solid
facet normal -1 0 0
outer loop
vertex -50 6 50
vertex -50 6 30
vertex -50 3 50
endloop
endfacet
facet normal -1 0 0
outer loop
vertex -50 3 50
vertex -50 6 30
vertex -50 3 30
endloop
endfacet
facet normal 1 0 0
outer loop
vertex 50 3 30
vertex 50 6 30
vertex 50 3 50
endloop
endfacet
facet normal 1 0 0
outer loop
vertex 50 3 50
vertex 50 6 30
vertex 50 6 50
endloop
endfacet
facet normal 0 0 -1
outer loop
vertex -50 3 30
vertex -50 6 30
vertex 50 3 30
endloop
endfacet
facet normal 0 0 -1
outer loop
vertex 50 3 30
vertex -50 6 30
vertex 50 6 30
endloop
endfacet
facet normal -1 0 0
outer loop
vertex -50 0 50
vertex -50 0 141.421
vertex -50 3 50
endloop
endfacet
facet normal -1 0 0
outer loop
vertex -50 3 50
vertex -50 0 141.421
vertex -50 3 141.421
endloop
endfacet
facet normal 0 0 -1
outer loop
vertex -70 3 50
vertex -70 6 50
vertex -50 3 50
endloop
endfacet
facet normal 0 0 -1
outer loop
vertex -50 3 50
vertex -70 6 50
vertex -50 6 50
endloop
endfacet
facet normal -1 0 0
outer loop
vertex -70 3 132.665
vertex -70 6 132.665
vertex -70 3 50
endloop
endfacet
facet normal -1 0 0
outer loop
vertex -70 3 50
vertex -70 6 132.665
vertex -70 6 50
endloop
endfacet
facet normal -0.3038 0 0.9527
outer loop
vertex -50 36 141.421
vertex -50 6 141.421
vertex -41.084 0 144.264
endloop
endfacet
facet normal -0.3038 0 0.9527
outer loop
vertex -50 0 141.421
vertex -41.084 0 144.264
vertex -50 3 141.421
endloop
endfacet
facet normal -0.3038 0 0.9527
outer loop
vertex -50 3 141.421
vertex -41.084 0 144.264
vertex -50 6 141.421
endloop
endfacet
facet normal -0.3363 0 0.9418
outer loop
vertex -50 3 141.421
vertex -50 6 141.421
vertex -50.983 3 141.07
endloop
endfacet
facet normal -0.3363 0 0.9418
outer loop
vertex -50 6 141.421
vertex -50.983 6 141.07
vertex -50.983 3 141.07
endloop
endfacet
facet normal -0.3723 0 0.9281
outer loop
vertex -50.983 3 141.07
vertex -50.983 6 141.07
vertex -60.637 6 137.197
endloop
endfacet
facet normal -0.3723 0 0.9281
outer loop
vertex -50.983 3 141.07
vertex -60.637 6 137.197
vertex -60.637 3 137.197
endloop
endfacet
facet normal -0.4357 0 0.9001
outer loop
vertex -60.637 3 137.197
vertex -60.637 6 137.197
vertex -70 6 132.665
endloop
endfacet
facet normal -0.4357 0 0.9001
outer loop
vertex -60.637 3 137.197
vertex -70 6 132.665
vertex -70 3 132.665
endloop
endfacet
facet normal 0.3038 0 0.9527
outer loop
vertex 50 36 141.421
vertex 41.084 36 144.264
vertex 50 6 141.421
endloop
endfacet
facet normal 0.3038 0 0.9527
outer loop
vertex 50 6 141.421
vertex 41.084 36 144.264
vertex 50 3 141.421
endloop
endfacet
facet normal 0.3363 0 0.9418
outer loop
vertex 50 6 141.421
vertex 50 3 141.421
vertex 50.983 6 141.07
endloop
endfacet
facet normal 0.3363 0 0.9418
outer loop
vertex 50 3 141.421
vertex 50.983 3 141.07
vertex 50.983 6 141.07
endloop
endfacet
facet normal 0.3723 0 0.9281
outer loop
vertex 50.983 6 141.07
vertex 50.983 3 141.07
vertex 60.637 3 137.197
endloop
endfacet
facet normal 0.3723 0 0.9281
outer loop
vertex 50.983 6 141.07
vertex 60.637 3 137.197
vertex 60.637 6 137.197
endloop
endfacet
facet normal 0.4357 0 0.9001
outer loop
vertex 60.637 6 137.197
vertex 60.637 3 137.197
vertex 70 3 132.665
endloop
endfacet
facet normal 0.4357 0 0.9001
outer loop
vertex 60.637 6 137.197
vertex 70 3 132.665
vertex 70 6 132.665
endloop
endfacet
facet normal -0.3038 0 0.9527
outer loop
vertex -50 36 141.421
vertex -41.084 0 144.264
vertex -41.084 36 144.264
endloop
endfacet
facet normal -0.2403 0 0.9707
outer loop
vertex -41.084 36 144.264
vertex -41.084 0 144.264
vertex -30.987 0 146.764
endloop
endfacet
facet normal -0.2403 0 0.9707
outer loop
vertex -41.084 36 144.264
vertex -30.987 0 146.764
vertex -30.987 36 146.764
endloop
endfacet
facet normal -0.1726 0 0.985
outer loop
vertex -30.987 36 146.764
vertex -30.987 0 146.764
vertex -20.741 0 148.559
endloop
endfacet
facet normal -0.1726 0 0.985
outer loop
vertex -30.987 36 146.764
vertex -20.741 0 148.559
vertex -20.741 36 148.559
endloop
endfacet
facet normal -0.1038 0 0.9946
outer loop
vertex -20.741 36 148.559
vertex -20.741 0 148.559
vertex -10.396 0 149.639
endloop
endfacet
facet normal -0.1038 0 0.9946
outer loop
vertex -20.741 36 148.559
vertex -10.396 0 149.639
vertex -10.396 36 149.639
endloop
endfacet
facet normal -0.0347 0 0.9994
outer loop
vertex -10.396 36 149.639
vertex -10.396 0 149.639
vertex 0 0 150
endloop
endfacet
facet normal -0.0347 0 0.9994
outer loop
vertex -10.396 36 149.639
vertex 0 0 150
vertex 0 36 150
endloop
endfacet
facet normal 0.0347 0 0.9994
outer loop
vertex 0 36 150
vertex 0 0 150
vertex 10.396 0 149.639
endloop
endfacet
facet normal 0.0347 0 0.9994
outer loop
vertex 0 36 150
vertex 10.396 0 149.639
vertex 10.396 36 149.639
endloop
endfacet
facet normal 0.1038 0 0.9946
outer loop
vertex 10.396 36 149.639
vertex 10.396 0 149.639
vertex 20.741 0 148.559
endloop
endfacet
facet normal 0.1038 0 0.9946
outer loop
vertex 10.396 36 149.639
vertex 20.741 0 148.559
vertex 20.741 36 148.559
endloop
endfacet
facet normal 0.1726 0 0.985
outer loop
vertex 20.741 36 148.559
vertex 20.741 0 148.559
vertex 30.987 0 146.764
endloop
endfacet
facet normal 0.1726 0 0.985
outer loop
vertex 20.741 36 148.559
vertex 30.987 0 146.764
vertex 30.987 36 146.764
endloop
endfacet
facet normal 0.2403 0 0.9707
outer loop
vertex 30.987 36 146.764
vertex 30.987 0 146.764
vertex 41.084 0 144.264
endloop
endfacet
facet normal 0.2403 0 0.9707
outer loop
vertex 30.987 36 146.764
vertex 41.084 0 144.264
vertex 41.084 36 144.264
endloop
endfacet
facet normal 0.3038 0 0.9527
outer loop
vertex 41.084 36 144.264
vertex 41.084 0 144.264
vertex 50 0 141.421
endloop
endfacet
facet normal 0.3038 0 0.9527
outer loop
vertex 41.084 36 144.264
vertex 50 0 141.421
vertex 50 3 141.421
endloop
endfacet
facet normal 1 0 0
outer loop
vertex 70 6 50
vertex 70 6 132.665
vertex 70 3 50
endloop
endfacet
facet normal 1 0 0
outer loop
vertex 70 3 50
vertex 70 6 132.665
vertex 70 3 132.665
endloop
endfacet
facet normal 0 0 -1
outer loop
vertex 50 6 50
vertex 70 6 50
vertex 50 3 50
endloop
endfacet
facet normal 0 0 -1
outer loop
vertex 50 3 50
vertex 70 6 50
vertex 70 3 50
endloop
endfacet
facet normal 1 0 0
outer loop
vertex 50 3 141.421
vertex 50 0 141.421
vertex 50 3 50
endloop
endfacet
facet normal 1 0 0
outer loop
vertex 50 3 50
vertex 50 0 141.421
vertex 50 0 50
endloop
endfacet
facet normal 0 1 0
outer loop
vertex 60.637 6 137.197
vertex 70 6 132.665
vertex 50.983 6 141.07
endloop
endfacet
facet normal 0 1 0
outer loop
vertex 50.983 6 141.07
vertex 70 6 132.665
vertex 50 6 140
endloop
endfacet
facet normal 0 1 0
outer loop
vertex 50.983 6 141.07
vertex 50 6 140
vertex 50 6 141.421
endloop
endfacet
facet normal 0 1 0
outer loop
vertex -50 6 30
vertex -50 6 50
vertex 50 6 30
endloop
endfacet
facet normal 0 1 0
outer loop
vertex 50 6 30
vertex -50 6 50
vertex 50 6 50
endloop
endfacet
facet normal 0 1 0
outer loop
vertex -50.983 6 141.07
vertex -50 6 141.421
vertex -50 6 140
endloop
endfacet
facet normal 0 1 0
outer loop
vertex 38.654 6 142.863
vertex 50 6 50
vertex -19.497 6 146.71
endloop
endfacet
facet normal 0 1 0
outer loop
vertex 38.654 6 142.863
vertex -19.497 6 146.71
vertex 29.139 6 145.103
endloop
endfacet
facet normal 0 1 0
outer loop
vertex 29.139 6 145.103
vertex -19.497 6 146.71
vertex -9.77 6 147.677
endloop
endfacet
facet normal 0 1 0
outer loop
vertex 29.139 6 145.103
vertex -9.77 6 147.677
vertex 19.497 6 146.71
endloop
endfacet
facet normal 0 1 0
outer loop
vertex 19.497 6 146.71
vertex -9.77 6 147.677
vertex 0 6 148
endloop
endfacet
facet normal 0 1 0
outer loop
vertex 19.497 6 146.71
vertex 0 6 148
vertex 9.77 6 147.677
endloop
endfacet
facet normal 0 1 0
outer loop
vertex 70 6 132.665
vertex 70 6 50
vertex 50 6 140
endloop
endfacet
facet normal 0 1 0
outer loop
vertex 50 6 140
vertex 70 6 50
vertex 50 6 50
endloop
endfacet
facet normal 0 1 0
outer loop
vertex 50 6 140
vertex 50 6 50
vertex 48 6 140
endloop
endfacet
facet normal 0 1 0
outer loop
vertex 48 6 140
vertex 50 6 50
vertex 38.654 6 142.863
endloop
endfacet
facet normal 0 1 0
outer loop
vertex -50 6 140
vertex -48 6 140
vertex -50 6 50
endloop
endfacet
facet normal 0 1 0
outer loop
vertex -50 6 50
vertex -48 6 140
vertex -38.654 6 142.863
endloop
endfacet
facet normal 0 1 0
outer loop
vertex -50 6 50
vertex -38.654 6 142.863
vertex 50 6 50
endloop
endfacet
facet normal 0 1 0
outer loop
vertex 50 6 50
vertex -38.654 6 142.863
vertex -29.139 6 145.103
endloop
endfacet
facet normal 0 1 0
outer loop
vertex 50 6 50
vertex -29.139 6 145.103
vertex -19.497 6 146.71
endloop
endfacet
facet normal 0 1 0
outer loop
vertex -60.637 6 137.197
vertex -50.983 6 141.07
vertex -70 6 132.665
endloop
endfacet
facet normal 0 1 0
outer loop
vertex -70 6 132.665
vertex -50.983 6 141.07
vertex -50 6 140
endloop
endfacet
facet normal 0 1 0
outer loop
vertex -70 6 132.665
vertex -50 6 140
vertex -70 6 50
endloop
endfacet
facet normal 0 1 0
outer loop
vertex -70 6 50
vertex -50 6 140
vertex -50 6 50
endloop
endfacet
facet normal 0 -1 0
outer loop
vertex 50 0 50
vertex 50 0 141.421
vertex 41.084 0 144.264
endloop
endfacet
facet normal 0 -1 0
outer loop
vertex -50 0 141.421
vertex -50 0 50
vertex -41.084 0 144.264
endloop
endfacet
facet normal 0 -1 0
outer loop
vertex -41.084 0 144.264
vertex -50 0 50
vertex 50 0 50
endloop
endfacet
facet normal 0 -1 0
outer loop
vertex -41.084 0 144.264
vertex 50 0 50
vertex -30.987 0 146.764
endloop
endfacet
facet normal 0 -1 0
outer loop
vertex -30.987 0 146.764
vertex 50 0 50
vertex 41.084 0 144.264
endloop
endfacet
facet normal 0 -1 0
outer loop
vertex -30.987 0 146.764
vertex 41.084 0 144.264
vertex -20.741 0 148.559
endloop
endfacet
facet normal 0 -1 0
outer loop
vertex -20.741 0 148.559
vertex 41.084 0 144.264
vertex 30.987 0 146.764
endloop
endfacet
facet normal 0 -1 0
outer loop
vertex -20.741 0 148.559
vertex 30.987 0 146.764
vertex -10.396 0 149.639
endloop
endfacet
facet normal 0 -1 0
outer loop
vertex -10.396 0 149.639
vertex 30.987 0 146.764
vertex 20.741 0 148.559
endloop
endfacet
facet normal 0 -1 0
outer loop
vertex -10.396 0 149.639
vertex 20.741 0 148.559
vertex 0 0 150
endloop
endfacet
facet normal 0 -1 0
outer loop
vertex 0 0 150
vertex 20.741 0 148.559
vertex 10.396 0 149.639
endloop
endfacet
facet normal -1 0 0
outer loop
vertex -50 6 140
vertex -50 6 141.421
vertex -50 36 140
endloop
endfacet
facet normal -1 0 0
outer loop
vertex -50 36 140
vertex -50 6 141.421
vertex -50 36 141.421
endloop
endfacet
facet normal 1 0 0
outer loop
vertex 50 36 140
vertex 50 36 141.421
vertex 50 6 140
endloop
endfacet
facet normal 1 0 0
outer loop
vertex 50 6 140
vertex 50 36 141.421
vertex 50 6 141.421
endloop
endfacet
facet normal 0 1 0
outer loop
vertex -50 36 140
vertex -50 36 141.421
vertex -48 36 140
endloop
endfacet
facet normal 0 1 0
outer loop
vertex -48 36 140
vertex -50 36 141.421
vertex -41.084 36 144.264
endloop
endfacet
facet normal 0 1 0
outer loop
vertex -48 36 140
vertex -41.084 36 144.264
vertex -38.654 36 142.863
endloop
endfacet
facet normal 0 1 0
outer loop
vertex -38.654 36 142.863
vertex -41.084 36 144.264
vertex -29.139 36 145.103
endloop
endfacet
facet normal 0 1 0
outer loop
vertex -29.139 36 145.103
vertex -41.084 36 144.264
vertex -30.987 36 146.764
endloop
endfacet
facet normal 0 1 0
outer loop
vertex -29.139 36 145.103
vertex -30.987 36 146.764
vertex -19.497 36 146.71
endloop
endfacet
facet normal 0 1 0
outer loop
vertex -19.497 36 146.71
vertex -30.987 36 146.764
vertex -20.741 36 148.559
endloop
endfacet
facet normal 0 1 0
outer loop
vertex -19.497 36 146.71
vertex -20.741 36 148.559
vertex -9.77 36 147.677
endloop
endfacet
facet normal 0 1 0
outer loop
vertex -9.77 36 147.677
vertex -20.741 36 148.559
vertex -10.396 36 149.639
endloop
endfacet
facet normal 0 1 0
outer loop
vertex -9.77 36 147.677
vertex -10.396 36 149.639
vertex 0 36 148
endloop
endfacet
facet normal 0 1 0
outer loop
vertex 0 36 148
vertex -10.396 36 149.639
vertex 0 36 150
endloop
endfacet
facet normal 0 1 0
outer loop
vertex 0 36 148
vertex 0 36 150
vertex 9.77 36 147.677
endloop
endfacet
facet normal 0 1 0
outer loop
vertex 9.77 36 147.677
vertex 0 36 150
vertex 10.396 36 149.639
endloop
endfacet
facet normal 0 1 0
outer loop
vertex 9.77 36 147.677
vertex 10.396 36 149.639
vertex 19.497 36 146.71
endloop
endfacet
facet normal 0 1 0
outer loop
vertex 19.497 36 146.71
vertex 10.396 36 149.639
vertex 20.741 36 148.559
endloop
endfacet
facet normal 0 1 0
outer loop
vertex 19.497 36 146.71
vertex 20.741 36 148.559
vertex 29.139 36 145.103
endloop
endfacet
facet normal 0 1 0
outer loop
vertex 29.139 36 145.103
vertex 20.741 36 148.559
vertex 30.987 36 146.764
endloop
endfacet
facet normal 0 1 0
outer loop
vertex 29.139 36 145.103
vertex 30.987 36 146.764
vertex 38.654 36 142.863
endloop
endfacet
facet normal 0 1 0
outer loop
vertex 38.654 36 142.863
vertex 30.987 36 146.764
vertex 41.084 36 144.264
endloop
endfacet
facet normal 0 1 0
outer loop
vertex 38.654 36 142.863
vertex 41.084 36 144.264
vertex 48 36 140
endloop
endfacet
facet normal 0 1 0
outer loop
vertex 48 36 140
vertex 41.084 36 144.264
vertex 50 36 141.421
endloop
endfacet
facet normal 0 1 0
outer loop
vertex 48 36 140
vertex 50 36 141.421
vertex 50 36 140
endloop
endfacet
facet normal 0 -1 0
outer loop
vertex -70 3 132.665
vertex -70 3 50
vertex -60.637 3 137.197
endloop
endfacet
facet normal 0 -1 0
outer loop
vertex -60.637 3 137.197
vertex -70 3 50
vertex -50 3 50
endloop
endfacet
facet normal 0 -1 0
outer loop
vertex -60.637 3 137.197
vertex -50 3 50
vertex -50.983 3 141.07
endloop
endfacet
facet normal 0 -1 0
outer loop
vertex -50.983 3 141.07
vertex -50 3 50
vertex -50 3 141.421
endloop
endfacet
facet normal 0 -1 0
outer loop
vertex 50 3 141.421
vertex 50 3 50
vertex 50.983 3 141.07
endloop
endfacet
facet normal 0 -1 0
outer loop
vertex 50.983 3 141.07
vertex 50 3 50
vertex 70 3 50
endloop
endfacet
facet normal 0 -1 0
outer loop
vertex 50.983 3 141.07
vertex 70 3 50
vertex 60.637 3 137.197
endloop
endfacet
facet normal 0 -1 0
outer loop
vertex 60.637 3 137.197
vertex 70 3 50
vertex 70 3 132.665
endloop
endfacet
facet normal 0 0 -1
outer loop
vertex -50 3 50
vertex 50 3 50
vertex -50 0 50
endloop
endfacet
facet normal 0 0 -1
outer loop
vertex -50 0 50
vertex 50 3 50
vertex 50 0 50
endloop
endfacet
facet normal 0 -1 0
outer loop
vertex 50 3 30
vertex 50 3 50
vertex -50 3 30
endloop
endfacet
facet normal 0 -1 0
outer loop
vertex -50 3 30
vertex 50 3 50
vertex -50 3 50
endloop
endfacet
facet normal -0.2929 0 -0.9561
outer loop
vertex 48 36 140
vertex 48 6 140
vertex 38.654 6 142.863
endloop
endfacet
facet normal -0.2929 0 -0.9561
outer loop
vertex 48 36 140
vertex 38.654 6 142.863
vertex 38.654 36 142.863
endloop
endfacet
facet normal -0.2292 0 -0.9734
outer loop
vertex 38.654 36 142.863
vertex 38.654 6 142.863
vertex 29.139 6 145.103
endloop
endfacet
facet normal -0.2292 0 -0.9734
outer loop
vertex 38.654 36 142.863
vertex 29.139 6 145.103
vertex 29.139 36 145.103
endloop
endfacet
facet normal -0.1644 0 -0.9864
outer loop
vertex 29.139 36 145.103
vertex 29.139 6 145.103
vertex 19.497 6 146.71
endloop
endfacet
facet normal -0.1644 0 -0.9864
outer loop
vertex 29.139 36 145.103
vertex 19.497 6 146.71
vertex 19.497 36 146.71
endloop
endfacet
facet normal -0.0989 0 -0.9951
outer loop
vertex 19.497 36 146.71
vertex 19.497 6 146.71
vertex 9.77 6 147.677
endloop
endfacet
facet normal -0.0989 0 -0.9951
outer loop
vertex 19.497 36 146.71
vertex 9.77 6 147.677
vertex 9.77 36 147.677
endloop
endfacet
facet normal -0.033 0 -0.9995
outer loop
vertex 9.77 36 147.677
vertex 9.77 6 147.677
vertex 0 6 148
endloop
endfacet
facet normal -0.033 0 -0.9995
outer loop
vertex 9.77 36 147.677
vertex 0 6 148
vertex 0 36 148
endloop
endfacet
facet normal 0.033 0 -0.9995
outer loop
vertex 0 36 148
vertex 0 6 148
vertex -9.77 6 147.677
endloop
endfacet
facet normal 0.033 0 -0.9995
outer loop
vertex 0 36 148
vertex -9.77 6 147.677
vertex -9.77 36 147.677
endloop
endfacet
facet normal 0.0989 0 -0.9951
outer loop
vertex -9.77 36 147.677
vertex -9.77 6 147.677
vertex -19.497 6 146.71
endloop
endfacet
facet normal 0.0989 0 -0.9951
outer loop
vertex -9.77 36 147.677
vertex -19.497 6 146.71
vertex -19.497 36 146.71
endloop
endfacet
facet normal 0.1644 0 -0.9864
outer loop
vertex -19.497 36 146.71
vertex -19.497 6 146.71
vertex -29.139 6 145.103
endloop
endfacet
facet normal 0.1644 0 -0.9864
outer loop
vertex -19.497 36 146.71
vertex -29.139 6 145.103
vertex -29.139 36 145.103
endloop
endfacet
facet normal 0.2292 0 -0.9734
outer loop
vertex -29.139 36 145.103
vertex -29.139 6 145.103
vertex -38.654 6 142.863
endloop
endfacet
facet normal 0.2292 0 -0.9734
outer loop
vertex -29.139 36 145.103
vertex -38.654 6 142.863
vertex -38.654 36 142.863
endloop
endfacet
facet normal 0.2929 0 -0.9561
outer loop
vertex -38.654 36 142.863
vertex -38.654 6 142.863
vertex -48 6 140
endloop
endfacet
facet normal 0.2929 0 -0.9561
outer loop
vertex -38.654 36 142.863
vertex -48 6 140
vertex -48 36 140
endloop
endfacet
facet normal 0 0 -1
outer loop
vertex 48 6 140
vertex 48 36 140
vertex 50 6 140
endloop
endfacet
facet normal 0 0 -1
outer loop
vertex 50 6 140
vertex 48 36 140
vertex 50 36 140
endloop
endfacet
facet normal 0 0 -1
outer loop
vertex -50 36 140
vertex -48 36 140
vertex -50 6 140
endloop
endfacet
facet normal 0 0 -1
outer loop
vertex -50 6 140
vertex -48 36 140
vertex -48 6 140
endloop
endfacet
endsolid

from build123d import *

# Parameters (mm, degrees)
BOSS_EXTRUDE1_DEPTH = 6
BOSS_EXTRUDE2_DEPTH = 30
CUT_EXTRUDE1_DEPTH  = 3
CUT_EXTRUDE2_DEPTH  = 3
SKETCH6_W           = 100
SKETCH6_H           = 20
CUT_EXTRUDE3_DEPTH  = 3
SHELL4_START        = 2
SHELL4_DEPTH        = 34
CUT_EXTRUDE4_REACH  = 197.438
SKETCH7_W           = 90
SKETCH7_H           = 30
BOSS_EXTRUDE3_DEPTH = 6


# Read off the part's stored shape, not the designer's step: Shell4
with BuildPart() as part:
    # Sketch2 → Boss-Extrude1 (new body)
    with BuildSketch(Plane(origin=(0, 0, 0), x_dir=(1, 0, 0), z_dir=(0, 1, 0))):
        with BuildLine():
            Line((50, -50), (0, -50))
            Line((0, -50), (-50, -50))
            Line((-50, -50), (-50, -141.421356237))
            ThreePointArc((-50, -141.421356237), (0, -150), (50, -141.421356237))
            Line((50, -141.421356237), (50, -50))
        make_face()
        with BuildLine():
            Line((-50, -141.421356237), (-50, -50))
            Line((-50, -50), (-70, -50))
            Line((-70, -50), (-70, -132.664991614))
            ThreePointArc((-70, -132.664991614), (-60.159525267, -137.407538074), (-50, -141.421356237))
        make_face()
        with BuildLine():
            Line((70, -50), (50, -50))
            Line((50, -50), (50, -141.421356237))
            ThreePointArc((50, -141.421356237), (60.159525267, -137.407538074), (70, -132.664991614))
            Line((70, -132.664991614), (70, -50))
        make_face()
        Polygon((-50, -50), (0, -50), (50, -50), (50, -30), (-50, -30), align=None)
    extrude(amount=BOSS_EXTRUDE1_DEPTH)

    # Sketch3 → Boss-Extrude2 (add)
    with BuildSketch(Plane(origin=(0, 6, 0), x_dir=(-1, 0, 0), z_dir=(0, 1, 0))):
        with BuildLine():
            Line((50, 50), (-50, 50))
            Line((-50, 50), (-50, 141.421356237))
            ThreePointArc((-50, 141.421356237), (0, 150), (50, 141.421356237))
            Line((50, 141.421356237), (50, 50))
        make_face()
    extrude(amount=BOSS_EXTRUDE2_DEPTH)

    # Sketch4 → Cut-Extrude1 (cut)
    with BuildSketch(Plane.XZ):
        with BuildLine():
            Line((-50, 141.421356237), (-50, 50))
            Line((-50, 50), (-70, 50))
            Line((-70, 50), (-70, 132.664991614))
            ThreePointArc((-70, 132.664991614), (-60.159525267, 137.407538074), (-50, 141.421356237))
        make_face()
    extrude(amount=-CUT_EXTRUDE1_DEPTH, mode=Mode.SUBTRACT)

    # Sketch5 → Cut-Extrude2 (cut)
    with BuildSketch(Plane.XZ):
        with BuildLine():
            Line((50, 141.421356237), (50, 50))
            Line((50, 50), (70, 50))
            Line((70, 50), (70, 132.664991614))
            ThreePointArc((70, 132.664991614), (60.159525267, 137.407538074), (50, 141.421356237))
        make_face()
    extrude(amount=-CUT_EXTRUDE2_DEPTH, mode=Mode.SUBTRACT)

    # Sketch6 → Cut-Extrude3 (cut)
    with BuildSketch(Plane.XZ):
        with Locations((0, 40)):
            Rectangle(SKETCH6_W, SKETCH6_H)
    extrude(amount=-CUT_EXTRUDE3_DEPTH, mode=Mode.SUBTRACT)

    # Shell4 outline → Shell4 (cut)
    with BuildSketch(Plane(origin=(0, 0, 0), x_dir=(1, 0, 0), z_dir=(0, 1, 0)).offset(SHELL4_START)):
        with BuildLine():
            Line((-48, -52), (-48, -140))
            ThreePointArc((-48, -140), (0, -148), (48, -140))
            Line((48, -140), (48, -52))
            Line((48, -52), (-48, -52))
        make_face()
    extrude(amount=SHELL4_DEPTH, mode=Mode.SUBTRACT)

    # Sketch7 → Cut-Extrude4 (cut, up to next)
    with BuildSketch(Plane.ZY.offset(50), mode=Mode.PRIVATE) as cut_extrude4_sk1:
        with Locations((95, 21)):
            Rectangle(SKETCH7_W, SKETCH7_H)
    cut_extrude4_tool1 = extrude(cut_extrude4_sk1.sketch, amount=-CUT_EXTRUDE4_REACH, mode=Mode.PRIVATE) & part.part
    add(cut_extrude4_tool1.solids().sort_by_distance((-50, 21, 95))[0], mode=Mode.SUBTRACT)

    # Sketch8 → Boss-Extrude3 (add)
    with BuildSketch(Plane.XZ):
        with BuildLine():
            Line((-48, 140), (-48, 52))
            Line((-48, 52), (48, 52))
            Line((48, 52), (48, 140))
            ThreePointArc((48, 140), (0, 148), (-48, 140))
        make_face()
    extrude(amount=-BOSS_EXTRUDE3_DEPTH)


solid = part.part
